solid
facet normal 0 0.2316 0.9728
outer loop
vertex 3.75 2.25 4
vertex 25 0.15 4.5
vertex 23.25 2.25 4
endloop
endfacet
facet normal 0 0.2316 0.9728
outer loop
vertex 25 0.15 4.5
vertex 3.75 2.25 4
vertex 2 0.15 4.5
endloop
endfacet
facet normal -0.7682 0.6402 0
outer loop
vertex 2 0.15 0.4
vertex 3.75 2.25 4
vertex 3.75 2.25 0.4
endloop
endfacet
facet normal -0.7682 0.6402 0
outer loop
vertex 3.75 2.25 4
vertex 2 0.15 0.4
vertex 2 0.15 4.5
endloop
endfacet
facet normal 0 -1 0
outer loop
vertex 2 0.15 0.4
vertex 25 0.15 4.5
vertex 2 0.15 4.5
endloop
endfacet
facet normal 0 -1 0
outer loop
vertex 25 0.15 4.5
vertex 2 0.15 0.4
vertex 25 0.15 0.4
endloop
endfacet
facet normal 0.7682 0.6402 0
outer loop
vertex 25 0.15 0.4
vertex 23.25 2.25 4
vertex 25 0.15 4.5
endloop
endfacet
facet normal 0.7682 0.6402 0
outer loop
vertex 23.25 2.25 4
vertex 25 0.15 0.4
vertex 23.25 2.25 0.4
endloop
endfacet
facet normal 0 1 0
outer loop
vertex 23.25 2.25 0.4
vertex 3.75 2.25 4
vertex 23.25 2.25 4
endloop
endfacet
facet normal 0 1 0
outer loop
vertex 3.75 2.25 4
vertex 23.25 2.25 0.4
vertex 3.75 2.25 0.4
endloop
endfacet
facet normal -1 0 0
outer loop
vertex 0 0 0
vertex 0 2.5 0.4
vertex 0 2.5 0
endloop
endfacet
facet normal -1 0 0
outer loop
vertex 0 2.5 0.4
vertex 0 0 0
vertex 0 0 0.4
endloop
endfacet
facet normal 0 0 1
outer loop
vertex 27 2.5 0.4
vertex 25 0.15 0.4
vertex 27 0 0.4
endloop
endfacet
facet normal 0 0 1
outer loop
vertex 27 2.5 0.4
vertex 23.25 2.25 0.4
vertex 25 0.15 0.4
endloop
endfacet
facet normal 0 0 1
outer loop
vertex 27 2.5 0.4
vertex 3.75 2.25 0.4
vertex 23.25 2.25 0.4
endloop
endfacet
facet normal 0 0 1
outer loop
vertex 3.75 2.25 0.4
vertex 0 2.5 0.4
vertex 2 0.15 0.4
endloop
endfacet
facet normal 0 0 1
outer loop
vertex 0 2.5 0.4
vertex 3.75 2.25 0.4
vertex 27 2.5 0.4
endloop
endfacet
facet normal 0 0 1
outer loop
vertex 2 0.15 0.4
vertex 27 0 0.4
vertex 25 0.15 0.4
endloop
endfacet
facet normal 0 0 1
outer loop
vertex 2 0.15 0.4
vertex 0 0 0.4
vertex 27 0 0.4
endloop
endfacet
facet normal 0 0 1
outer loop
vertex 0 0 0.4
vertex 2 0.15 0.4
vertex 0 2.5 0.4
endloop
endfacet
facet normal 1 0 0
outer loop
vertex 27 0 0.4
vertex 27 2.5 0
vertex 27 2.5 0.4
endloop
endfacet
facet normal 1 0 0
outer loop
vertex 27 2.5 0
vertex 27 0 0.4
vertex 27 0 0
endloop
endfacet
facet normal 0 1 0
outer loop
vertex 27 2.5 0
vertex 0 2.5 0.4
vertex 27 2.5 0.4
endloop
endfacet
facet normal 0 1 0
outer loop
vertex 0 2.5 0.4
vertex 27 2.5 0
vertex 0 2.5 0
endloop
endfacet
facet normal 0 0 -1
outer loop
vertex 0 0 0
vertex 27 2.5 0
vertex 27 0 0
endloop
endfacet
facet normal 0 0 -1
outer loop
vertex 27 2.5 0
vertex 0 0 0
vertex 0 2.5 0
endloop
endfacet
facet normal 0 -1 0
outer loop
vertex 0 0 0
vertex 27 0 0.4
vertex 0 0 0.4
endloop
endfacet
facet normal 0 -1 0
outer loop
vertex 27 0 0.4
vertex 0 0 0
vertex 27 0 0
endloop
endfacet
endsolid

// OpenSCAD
displayEdge = 23;
caseEdge = displayEdge-3.5;
caseEdgeDiff = displayEdge-caseEdge;
height = 2.1;
depth = 4.3;
zInterval = 0.5;
translate([2,0.15,0.2])polyhedron(
       points=[[0,0,0], [displayEdge,0,0],
       [caseEdgeDiff/2,height,0], [caseEdge+caseEdgeDiff/2, height, 0], [0,0,depth],
       [displayEdge,0,depth], [caseEdgeDiff/2,height,depth-zInterval],
       [caseEdge+caseEdgeDiff/2, height, depth-zInterval]],
       faces=[[2,3,1,0],[4,5,7,6],[4,6,2,0],[1,5,4,0], [3,7,5,1], [2,6,7,3]]
       );
      
cube([displayEdge+4,2.5,0.4]);
